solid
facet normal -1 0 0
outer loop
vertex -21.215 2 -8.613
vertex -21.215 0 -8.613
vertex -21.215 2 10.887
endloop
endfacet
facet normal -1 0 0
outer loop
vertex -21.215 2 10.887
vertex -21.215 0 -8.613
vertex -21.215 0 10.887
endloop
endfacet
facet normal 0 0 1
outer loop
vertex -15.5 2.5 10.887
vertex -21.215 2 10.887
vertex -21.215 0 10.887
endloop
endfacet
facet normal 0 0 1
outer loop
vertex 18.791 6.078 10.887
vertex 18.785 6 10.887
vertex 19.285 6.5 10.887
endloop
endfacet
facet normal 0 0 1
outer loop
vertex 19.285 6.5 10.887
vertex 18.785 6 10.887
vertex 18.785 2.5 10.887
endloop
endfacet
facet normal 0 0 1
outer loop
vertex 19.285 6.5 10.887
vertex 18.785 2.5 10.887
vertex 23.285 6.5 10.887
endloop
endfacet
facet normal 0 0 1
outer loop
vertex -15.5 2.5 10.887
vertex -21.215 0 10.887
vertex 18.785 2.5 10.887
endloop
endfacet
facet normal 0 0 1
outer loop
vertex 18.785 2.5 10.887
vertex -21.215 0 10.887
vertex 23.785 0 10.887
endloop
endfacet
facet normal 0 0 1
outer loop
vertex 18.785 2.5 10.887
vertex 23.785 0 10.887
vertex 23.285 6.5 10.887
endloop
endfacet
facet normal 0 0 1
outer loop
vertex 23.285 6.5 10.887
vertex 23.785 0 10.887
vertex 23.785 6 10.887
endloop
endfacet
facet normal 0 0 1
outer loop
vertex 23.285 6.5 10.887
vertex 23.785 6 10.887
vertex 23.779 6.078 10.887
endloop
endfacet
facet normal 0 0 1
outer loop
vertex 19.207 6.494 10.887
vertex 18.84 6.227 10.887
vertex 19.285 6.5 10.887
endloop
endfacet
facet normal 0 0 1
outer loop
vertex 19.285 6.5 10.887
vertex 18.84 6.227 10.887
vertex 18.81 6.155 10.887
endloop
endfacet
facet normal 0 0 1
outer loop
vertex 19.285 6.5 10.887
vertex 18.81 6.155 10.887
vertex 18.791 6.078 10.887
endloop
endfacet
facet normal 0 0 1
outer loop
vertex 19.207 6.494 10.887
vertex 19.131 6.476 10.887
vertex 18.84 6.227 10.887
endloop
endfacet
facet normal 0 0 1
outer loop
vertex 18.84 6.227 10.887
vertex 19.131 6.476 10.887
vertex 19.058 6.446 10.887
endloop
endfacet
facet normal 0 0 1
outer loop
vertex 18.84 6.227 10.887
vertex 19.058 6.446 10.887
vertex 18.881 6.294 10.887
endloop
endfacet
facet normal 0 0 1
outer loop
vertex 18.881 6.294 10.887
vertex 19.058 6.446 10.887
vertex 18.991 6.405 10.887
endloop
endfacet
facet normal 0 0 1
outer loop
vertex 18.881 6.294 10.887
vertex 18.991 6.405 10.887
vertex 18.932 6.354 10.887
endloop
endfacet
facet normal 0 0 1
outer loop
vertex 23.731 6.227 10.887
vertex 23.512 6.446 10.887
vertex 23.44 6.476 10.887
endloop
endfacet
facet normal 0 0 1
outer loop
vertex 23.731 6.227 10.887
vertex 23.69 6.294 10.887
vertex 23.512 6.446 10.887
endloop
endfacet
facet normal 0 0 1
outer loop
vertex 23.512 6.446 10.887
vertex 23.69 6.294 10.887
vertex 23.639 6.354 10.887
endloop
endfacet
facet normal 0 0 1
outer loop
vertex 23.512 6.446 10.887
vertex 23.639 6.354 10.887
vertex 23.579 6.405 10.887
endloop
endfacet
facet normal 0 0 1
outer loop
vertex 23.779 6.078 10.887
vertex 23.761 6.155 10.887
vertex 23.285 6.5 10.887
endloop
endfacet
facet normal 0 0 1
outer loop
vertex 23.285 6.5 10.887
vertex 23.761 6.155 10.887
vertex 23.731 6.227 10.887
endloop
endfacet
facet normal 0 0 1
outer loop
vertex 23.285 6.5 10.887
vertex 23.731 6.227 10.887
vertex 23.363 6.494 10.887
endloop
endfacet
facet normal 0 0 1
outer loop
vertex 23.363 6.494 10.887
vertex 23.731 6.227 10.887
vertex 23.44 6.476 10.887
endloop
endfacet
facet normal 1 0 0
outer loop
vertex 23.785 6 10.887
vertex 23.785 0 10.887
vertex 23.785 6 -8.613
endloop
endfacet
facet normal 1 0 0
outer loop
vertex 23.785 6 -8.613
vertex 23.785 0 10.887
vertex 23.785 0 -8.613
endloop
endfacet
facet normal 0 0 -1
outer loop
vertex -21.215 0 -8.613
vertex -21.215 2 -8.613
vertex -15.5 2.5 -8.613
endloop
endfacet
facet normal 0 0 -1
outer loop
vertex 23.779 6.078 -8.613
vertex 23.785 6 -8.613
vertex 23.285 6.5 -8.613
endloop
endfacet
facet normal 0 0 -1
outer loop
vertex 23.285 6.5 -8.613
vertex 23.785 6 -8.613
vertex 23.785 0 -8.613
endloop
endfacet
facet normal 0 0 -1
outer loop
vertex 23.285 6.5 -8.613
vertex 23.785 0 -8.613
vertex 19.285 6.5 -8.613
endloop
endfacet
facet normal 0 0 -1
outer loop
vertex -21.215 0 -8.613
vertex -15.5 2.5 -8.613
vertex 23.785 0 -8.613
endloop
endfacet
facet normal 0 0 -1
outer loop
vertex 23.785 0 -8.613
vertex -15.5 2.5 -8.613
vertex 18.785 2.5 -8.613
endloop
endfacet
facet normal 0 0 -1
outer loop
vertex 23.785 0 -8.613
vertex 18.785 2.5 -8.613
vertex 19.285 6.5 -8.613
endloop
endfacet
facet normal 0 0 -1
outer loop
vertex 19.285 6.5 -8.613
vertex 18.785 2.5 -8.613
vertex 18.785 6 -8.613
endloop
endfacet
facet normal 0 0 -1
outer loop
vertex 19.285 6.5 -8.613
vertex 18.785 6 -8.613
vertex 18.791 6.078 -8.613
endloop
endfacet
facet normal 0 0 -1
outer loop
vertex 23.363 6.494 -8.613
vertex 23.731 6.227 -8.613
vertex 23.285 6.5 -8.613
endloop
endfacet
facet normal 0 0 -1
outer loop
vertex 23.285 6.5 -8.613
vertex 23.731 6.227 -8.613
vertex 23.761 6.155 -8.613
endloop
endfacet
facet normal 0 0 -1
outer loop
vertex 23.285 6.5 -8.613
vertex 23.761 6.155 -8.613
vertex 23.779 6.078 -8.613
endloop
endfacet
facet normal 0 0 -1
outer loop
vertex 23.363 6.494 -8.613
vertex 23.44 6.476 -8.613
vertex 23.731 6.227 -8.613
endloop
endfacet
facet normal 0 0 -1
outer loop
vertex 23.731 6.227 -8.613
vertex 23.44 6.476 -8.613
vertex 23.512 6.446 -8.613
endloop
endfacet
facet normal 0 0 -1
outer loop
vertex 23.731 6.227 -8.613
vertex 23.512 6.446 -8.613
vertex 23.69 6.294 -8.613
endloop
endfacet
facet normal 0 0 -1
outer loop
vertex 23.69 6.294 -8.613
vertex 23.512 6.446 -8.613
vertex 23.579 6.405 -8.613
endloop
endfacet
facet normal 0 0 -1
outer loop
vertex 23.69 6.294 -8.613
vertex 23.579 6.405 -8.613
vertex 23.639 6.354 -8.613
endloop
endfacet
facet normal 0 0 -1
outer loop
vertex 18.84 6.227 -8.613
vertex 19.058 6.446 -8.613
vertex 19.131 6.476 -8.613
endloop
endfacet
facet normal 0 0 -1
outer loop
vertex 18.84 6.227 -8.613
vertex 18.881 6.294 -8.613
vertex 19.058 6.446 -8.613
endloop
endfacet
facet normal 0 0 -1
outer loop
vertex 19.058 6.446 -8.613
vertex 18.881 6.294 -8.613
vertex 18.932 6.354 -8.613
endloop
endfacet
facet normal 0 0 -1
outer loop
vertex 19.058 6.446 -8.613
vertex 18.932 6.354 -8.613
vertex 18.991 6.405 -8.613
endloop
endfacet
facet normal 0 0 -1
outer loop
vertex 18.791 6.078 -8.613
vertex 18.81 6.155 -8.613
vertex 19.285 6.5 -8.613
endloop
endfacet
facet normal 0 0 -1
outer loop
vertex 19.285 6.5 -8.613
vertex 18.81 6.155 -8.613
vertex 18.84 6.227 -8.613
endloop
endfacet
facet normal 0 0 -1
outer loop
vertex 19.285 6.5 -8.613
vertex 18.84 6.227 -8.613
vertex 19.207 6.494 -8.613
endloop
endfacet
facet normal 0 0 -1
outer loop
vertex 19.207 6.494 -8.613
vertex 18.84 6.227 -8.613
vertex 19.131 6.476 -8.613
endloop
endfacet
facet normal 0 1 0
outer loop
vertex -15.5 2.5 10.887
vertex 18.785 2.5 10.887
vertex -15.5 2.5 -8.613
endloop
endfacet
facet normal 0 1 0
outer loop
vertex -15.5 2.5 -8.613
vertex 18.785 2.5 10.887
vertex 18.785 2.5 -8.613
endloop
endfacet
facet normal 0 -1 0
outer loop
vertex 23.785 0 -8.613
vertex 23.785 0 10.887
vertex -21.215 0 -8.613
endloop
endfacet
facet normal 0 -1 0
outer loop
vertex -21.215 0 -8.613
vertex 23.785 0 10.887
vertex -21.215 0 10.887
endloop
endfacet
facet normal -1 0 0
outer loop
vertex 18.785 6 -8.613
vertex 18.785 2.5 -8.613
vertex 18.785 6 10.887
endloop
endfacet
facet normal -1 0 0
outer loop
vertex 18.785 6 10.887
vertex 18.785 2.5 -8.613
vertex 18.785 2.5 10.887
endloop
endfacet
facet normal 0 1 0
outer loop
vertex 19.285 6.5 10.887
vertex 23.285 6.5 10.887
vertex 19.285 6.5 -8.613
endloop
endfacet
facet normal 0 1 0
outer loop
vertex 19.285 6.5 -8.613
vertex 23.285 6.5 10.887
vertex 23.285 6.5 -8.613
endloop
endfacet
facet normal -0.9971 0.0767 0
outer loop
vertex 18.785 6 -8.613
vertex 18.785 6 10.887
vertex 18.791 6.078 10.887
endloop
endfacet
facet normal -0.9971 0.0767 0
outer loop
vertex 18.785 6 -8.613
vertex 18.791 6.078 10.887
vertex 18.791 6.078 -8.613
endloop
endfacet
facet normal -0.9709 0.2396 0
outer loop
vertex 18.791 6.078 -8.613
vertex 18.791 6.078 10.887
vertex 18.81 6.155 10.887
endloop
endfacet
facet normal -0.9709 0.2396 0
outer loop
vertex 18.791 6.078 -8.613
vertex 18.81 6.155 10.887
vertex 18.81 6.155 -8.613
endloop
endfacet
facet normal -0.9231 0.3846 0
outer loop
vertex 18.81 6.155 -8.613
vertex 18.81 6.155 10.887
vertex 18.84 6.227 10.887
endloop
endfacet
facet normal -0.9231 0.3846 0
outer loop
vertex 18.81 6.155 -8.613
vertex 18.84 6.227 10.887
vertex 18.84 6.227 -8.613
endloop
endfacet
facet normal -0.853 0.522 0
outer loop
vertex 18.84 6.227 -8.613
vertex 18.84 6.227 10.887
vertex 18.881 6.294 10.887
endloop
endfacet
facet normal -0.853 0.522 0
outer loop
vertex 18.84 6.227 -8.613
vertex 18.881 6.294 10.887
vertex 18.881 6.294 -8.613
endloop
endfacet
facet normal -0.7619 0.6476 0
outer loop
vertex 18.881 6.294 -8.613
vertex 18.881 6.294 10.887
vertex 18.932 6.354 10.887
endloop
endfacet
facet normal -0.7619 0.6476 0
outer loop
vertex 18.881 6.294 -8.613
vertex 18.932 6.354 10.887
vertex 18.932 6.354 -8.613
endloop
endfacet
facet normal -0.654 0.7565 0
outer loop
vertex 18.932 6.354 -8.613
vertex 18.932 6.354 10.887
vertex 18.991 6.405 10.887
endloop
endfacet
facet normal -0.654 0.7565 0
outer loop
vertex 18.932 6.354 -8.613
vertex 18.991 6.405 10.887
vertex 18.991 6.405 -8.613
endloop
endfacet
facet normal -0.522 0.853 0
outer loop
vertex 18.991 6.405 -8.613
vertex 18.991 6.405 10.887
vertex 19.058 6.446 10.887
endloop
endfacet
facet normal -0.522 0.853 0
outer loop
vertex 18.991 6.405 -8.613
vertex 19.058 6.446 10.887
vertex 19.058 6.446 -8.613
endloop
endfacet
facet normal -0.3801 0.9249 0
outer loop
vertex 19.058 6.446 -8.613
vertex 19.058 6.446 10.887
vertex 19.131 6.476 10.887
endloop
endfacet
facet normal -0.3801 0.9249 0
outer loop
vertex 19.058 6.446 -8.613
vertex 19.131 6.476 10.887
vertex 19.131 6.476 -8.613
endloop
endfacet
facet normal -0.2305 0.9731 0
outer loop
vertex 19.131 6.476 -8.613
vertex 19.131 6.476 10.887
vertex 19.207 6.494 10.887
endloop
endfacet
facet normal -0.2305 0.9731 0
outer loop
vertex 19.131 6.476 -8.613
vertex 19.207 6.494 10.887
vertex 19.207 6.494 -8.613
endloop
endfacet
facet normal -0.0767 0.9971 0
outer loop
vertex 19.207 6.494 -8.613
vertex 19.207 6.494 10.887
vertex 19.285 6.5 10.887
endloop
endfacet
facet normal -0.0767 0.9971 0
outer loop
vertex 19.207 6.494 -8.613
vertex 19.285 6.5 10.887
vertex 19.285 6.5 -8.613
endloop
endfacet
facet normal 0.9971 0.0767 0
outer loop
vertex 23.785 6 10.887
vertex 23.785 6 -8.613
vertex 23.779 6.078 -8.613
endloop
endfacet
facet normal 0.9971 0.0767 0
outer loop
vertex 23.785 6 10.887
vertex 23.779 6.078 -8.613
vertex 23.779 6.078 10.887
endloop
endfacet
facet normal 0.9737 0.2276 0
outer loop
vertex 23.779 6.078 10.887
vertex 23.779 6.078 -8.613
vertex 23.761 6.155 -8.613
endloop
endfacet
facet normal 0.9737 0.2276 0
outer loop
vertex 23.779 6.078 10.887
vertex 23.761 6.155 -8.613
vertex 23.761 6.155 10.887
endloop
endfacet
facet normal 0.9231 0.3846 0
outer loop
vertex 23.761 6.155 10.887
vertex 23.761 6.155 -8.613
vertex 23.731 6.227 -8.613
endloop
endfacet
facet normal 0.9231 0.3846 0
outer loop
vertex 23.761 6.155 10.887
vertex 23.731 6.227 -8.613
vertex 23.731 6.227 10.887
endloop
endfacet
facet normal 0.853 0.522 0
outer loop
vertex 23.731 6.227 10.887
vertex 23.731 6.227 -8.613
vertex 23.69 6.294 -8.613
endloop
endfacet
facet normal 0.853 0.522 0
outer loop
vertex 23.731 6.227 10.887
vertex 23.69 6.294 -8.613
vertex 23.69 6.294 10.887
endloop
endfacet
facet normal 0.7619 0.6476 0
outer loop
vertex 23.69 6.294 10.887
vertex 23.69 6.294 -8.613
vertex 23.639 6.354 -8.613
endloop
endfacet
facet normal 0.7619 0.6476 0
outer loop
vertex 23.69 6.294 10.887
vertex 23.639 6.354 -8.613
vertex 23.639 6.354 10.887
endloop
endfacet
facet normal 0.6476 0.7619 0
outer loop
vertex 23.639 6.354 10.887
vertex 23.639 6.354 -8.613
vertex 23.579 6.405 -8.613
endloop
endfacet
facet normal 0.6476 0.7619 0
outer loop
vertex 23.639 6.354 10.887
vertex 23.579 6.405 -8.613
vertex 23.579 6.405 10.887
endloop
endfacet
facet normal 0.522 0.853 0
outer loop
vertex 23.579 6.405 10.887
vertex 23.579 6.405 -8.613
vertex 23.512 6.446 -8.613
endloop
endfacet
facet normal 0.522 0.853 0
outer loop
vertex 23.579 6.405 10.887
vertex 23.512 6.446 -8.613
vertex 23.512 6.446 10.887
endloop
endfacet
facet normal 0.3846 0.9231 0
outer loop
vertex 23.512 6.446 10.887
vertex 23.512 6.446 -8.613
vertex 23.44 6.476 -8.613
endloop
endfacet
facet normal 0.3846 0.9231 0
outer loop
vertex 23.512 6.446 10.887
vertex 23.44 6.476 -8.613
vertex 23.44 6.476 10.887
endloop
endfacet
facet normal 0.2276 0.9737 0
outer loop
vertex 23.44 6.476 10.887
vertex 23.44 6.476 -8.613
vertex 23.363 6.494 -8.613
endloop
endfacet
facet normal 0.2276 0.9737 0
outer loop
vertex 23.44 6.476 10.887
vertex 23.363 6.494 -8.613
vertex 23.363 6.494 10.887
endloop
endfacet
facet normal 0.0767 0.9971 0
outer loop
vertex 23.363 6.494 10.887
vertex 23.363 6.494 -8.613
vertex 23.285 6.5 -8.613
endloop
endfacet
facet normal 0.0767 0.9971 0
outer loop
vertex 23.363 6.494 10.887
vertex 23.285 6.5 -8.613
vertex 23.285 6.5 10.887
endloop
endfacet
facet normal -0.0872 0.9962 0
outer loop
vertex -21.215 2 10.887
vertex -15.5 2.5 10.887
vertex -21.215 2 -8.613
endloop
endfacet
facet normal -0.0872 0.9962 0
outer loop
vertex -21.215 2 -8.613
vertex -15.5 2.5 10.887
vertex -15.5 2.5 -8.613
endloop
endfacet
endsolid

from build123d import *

# Parameters (mm, degrees)
SKETCH1_W           = 45
SKETCH1_H           = 19.5
BOSS_EXTRUDE1_DEPTH = 2.5
SKETCH2_W           = 5
SKETCH2_H           = 19.5
BOSS_EXTRUDE2_DEPTH = 4
FILLET1_R           = 0.5
CHAMFER1_SIZE       = 0.5
CHAMFER1_SIZE2      = 5.715026151


with BuildPart() as part:
    # Sketch1 → Boss-Extrude1 (new body)
    with BuildSketch(Plane(origin=(0, 0, 0), x_dir=(1, 0, 0), z_dir=(0, 1, 0))):
        with Locations((1.28516624, -1.137468031)):
            Rectangle(SKETCH1_W, SKETCH1_H)
    extrude(amount=BOSS_EXTRUDE1_DEPTH)

    # Sketch2 → Boss-Extrude2 (add)
    with BuildSketch(Plane(origin=(0, 2.5, 0), x_dir=(1, 0, 0), z_dir=(0, 1, 0))):
        with Locations((21.28516624, -1.137468031)):
            Rectangle(SKETCH2_W, SKETCH2_H)
    extrude(amount=BOSS_EXTRUDE2_DEPTH)

    # Fillet1
    fillet1_edges = [part.edges().sort_by_distance(p)[0] for p in [
        (23.78516624, 6.5, 1.137468031),
        (18.78516624, 6.5, 1.137468031),
    ]]
    fillet(fillet1_edges, radius=FILLET1_R)

    # Chamfer1
    chamfer1_edges = [part.edges().sort_by_distance(p)[0] for p in [
        (-21.21483376, 2.5, 1.137468031),
    ]]
    chamfer1_side = [part.faces().sort_by_distance(p)[0] for p in [
        (-21.21483376, 1.25, 1.137468031),
    ]]
    chamfer(chamfer1_edges, length=CHAMFER1_SIZE, length2=CHAMFER1_SIZE2, reference=chamfer1_side[0])


solid = part.part
